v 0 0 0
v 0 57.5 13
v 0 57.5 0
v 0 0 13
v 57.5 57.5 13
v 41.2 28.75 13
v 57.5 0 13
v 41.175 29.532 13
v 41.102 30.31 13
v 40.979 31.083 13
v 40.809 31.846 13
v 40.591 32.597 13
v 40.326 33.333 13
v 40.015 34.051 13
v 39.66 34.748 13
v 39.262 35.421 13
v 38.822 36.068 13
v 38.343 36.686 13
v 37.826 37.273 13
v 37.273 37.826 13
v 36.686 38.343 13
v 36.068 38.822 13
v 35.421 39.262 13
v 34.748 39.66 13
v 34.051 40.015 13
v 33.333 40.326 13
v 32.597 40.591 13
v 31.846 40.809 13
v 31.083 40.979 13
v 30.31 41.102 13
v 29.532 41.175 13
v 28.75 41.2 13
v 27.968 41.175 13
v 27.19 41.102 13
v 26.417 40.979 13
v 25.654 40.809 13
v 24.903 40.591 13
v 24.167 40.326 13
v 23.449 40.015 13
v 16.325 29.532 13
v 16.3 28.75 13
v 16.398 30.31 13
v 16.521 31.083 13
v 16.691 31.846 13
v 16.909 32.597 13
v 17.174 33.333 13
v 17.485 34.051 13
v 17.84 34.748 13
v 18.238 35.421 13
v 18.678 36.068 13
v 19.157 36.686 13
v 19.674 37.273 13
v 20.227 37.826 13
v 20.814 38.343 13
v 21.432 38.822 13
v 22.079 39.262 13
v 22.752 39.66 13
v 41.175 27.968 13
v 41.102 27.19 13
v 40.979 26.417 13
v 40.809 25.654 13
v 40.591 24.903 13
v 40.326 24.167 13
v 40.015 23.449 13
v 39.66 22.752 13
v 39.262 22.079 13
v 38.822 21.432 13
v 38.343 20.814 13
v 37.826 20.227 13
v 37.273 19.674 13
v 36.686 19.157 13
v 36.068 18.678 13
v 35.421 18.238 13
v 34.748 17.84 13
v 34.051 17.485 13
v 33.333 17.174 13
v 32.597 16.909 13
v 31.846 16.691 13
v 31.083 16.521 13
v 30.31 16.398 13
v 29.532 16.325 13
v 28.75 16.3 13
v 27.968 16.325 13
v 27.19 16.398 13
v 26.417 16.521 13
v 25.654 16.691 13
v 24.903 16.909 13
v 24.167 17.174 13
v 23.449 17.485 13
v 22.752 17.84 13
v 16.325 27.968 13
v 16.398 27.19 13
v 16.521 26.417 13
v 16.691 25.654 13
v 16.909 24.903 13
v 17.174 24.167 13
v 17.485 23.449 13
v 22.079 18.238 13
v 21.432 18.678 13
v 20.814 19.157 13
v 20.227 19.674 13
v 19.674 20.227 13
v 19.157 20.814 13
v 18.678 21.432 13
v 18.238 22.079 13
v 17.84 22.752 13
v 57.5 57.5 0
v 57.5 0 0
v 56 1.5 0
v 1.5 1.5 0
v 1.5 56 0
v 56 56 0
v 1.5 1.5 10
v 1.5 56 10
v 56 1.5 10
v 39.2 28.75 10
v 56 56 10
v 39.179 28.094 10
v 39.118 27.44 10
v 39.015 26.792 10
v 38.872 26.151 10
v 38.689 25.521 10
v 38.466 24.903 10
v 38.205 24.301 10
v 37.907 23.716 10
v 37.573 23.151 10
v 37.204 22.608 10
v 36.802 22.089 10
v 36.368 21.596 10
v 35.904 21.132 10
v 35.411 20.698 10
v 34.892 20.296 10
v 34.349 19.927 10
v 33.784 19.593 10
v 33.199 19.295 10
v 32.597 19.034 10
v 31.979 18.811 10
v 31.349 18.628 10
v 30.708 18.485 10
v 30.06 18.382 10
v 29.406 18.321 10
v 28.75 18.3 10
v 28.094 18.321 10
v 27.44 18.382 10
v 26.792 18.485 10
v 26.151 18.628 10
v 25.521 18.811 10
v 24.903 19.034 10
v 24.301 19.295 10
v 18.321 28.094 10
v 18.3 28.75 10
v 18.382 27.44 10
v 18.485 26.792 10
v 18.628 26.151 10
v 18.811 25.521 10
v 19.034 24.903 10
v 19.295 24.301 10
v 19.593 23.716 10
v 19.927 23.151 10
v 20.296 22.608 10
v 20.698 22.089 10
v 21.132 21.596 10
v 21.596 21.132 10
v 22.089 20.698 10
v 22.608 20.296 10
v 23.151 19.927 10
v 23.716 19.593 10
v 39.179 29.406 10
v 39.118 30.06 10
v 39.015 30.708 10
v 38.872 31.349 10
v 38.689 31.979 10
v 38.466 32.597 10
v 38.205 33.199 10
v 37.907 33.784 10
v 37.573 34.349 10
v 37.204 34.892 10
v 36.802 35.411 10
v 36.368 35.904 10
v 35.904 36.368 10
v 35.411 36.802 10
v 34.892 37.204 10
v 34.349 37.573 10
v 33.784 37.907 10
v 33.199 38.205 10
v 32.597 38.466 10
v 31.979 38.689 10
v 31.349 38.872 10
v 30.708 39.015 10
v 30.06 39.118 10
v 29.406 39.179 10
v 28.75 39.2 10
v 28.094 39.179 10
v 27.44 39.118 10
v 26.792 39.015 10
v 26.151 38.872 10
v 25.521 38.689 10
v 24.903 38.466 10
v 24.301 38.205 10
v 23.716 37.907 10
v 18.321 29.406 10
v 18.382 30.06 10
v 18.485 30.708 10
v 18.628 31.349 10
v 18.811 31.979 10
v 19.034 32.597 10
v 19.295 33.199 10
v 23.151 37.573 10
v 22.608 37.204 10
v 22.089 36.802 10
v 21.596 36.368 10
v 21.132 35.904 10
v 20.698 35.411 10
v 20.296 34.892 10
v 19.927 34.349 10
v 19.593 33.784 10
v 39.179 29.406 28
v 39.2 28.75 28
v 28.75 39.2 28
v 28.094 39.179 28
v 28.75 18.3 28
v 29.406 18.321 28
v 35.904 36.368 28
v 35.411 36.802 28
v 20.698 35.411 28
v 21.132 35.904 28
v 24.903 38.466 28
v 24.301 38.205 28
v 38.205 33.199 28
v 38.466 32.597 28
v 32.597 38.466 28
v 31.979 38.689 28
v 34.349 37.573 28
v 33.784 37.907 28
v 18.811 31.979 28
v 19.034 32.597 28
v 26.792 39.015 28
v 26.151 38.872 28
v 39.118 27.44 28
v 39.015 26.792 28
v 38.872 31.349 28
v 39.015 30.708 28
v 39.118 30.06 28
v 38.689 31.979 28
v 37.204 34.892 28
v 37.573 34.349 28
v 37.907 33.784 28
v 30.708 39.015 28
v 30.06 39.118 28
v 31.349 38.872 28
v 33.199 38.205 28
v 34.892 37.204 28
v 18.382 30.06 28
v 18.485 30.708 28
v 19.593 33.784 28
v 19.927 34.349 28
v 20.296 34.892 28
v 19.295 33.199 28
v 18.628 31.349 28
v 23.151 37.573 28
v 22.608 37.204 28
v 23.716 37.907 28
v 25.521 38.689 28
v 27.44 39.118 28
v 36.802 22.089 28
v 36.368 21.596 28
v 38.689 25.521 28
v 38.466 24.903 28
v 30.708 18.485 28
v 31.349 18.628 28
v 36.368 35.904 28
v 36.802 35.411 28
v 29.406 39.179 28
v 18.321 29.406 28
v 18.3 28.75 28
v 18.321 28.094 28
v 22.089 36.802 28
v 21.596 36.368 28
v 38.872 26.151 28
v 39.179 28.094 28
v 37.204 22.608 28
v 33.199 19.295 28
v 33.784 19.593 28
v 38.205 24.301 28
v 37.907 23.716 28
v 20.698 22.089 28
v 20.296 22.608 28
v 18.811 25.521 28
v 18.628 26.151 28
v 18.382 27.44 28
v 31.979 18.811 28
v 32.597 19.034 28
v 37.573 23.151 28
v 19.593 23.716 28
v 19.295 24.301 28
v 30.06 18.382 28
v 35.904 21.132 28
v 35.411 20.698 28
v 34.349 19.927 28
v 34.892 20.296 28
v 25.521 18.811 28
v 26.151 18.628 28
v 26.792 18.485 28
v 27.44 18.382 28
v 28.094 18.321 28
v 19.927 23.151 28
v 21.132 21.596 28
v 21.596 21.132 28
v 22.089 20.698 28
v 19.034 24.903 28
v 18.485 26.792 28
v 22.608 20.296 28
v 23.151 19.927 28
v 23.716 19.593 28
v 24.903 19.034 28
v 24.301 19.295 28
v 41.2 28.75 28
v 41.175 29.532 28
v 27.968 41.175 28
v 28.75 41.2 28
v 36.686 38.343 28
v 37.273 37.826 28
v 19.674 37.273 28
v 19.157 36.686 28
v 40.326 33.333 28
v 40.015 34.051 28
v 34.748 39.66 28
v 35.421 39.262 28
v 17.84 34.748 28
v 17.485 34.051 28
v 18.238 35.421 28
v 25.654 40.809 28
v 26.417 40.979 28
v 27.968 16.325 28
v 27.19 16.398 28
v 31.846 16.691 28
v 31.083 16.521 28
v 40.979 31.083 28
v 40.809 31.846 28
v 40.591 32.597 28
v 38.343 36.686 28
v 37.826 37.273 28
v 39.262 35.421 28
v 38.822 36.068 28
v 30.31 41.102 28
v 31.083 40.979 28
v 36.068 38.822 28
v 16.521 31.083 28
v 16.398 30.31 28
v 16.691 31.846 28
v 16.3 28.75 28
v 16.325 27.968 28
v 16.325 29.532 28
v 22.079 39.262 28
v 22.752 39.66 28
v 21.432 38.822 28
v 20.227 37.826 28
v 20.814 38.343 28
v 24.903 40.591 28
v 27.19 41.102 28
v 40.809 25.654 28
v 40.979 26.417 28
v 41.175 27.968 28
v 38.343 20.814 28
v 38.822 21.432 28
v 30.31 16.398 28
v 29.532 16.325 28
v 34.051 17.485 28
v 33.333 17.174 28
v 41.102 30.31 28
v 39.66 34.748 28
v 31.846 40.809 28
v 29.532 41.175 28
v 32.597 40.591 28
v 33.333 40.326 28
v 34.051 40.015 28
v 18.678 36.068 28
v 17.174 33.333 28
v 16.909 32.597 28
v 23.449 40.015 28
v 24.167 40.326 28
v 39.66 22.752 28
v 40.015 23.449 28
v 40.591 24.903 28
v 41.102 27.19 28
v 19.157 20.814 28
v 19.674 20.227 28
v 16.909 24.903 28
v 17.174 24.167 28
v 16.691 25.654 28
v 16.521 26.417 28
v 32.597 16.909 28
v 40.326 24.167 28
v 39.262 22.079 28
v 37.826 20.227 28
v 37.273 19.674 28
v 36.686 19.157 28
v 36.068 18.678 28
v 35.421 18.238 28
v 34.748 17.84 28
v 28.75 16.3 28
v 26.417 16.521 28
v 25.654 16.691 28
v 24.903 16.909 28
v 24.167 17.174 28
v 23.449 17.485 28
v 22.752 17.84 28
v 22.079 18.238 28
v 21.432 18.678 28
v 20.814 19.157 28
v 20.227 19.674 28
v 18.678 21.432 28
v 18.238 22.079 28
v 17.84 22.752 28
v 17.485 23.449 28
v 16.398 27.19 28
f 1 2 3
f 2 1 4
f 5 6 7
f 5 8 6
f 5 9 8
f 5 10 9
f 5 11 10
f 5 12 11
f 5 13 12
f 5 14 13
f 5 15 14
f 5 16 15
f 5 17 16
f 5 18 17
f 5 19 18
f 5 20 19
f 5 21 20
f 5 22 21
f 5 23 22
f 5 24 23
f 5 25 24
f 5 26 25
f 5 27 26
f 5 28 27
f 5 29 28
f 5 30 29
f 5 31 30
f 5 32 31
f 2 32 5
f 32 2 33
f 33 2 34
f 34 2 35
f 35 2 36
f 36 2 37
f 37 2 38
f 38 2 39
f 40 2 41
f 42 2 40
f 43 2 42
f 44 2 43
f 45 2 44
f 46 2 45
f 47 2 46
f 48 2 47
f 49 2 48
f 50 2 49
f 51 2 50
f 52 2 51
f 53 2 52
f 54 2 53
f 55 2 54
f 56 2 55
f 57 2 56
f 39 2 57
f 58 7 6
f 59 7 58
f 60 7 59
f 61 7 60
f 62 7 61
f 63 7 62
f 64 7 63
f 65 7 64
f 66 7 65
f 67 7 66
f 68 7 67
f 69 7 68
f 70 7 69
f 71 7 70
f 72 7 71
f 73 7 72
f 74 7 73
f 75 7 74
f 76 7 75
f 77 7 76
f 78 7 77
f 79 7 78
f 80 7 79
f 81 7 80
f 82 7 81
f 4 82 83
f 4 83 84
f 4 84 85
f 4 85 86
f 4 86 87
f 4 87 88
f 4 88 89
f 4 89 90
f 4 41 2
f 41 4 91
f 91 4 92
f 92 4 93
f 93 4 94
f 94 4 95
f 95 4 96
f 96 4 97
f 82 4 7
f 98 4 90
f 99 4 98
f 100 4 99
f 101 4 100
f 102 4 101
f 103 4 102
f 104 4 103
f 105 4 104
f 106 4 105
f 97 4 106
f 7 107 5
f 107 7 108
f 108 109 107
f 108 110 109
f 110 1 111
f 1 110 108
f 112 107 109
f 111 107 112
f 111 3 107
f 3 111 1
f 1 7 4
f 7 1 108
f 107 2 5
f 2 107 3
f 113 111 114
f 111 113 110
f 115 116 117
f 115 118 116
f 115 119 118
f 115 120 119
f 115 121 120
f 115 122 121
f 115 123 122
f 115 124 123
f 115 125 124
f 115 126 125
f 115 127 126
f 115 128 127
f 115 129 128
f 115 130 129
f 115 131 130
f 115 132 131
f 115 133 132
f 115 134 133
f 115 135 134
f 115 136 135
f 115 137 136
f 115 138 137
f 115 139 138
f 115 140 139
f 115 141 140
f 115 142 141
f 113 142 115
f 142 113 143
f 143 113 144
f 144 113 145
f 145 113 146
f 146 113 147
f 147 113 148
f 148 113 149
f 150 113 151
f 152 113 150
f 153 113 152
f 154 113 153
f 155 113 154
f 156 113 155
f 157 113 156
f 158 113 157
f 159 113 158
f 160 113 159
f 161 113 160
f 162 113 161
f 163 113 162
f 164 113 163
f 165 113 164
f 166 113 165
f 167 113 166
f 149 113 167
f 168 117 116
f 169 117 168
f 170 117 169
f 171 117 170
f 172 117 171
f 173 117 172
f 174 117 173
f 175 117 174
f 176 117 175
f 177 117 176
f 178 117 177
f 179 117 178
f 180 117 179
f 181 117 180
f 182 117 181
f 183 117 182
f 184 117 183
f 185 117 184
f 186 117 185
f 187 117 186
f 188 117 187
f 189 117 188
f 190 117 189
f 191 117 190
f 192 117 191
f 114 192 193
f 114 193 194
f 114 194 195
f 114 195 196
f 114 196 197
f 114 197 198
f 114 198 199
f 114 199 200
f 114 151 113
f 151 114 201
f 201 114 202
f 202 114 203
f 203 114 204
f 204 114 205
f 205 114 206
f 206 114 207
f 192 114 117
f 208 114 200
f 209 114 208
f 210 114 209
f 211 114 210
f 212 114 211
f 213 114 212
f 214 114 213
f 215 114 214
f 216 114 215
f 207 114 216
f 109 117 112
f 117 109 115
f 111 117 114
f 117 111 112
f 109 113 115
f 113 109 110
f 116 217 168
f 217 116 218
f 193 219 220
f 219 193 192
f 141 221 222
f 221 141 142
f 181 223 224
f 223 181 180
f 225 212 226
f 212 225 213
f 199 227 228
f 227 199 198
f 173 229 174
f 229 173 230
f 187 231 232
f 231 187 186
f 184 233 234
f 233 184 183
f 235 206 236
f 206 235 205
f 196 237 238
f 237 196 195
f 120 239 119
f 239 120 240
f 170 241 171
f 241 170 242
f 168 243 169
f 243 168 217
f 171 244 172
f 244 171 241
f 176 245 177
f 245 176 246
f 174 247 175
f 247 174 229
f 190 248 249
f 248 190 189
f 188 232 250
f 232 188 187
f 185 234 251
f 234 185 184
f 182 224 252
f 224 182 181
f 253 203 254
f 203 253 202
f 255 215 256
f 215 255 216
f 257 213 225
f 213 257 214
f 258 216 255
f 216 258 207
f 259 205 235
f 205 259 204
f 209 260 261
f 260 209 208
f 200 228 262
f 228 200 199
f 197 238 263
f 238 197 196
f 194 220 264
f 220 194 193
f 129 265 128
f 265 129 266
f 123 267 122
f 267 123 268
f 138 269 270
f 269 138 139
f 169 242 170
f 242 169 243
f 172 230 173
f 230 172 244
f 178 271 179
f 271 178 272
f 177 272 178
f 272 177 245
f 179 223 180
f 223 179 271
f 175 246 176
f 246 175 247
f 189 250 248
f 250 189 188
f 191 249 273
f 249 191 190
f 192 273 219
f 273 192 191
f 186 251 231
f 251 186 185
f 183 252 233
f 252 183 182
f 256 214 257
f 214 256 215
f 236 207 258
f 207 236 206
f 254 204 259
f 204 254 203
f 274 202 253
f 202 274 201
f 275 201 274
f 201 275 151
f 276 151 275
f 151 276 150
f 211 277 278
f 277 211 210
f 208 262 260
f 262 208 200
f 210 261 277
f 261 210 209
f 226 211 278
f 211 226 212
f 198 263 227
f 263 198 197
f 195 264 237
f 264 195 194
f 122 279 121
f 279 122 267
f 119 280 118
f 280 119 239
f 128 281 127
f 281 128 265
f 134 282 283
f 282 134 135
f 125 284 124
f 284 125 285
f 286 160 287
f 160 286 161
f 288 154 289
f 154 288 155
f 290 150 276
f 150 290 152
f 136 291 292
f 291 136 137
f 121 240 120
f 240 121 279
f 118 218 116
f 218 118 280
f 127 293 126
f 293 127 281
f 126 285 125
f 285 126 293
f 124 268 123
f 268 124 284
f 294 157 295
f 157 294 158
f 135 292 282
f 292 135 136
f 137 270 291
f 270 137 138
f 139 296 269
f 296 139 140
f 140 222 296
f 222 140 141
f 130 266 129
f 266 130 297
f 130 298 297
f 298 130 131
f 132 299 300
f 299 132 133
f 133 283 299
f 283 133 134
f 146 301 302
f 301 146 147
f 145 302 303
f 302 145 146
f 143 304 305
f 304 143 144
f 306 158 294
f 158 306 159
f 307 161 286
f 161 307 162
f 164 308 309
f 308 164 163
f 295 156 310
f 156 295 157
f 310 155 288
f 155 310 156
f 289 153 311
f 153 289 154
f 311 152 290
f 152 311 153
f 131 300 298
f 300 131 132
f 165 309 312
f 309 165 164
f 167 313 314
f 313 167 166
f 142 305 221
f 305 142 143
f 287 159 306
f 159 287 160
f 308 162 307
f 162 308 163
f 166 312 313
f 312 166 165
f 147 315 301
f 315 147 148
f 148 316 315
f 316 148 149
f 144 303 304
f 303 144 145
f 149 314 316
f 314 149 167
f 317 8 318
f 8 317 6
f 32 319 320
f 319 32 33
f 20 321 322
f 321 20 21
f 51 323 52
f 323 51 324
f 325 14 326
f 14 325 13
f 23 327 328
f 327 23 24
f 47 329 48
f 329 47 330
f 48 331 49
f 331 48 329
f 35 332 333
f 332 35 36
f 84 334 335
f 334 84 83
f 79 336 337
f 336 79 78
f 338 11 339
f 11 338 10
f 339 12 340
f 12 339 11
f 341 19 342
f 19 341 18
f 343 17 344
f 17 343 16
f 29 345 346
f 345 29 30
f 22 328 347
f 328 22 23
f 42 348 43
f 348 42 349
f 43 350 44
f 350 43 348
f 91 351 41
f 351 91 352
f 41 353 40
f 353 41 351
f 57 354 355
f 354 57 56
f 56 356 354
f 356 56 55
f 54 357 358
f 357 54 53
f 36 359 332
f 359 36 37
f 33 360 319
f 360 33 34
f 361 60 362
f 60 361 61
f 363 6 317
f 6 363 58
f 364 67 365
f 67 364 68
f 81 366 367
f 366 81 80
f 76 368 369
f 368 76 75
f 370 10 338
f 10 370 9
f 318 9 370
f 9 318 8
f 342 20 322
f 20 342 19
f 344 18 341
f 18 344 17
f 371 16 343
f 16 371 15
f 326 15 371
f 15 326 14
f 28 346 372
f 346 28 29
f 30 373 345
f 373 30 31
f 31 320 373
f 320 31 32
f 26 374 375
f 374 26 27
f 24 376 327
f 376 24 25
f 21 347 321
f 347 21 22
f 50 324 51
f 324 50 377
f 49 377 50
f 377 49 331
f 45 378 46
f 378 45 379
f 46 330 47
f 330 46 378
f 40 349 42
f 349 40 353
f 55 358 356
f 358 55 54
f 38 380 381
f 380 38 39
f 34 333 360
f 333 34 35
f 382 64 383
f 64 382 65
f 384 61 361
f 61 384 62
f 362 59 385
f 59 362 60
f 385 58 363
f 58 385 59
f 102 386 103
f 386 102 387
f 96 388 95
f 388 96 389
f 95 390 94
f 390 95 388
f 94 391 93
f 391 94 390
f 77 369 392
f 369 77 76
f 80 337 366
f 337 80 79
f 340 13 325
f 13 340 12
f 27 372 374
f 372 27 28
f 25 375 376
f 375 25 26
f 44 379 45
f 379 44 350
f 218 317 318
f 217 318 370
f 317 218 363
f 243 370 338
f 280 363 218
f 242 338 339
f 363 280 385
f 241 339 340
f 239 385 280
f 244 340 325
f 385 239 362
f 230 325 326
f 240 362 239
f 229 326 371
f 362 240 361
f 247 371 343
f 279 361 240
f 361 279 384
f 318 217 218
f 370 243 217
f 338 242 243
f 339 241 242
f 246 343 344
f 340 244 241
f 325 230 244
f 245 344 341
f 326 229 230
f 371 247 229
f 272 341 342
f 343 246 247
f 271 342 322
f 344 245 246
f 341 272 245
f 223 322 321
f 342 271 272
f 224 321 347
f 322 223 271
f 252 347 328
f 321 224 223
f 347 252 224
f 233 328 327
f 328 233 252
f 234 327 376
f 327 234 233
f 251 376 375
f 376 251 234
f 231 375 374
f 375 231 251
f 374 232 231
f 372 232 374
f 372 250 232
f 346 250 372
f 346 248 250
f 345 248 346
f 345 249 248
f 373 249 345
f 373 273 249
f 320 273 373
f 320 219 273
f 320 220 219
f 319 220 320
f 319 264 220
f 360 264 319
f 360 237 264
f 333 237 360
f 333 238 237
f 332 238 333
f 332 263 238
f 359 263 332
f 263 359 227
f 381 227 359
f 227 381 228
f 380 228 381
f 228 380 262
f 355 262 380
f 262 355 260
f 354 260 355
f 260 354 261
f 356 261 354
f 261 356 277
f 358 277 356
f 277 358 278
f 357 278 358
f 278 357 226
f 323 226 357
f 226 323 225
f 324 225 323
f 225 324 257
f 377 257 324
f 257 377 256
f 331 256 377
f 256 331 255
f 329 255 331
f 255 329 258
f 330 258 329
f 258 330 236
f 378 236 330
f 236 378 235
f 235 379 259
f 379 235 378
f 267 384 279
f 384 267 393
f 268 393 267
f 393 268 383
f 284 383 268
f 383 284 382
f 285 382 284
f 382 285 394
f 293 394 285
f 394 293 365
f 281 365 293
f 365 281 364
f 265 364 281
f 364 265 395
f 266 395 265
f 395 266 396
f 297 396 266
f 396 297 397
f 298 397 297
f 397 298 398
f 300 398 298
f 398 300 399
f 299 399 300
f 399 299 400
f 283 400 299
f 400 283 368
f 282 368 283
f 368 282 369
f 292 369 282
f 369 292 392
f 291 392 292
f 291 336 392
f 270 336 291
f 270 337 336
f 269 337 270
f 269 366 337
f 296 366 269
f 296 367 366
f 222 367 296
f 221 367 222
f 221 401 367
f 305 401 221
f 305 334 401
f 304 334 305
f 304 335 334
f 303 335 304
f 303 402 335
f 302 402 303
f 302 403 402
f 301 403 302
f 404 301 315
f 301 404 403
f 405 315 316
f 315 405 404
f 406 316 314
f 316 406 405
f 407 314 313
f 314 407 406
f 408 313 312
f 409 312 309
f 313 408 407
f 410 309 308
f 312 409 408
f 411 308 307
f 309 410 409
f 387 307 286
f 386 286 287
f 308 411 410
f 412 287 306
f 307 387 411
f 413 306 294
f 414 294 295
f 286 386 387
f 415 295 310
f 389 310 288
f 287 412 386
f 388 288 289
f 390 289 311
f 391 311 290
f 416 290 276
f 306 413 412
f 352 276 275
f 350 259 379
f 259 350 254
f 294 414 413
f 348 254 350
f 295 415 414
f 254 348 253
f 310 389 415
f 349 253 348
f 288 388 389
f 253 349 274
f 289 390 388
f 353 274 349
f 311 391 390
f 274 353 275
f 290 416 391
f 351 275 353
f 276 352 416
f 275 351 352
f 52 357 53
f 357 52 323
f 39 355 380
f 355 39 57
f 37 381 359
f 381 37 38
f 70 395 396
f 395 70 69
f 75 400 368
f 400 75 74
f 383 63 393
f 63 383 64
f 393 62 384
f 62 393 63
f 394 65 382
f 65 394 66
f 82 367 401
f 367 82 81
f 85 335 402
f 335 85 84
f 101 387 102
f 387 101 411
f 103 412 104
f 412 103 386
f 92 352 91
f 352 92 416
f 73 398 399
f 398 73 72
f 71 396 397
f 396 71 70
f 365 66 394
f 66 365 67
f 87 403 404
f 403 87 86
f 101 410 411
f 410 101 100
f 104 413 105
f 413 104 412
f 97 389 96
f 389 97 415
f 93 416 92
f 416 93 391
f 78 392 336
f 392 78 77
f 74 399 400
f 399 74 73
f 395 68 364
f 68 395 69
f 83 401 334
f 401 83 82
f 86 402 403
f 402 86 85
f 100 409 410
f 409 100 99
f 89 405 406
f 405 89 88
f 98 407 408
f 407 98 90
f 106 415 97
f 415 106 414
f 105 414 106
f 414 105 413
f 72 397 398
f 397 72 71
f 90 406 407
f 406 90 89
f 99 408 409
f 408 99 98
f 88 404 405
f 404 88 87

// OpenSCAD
/*//suporte do cubo
difference(){
translate([-2,-2,0])cube([54,54,120]);
#translate([8,-2,70])cube([34,54,40]);
#translate([8,-2,10])cube([34,54,50]);
#translate([-2,8,10])cube([54,34,50]);
#translate([-2,8,70])cube([54,34,40]);
}
 difference(){translate([-25,-25,0])cube([100,100,15]);
#translate([-12.5,-12.5,0])cylinder(h=15, r=3.3, $fn=100);
#translate([62.5,62.5,0])cylinder(h=15, r=3.3);
#translate([62.5,-12.5,0])cylinder(h=15, r=3.3);
#translate([-12.5,62.5,0])cylinder(h=15, r=3.3);
 }
 
difference(){
translate([25,25,120])cylinder(h=15, r1=12.5,r2=12.5);
#translate([25,25,120])cylinder(h=15, r1=10.5,r2=10.5);
#translate([8,-2,70])cube([34,54,40]);
#translate([8,-2,10])cube([34,54,50]);
#translate([-2,8,10])cube([54,34,50]);
#translate([-2,8,70])cube([54,34,40]);
}

//base
rotate(a=[0,0,0])translate([-2,8,20])difference(){rotate(a=[90,30,0])translate([0,0,0])cylinder(10,10,10,$fn=3);
    #translate([0,-10,-5])cube([10,10,15]);
}
rotate(a=[0,0,90])translate([-2,2,20])difference(){rotate(a=[90,30,0])translate([0,0,0])cylinder(10,10,10,$fn=3);
    #translate([0,-10,-5])cube([10,10,15]);
}
translate([52,52,20])rotate(a=[0,0,270])difference(){rotate(a=[90,30,0])translate([0,0,0])cylinder(10,10,10,$fn=3);
    #translate([0,-10,-5])cube([10,10,15]);
}
translate([8,52,20])rotate(a=[0,0,270])difference(){rotate(a=[90,30,0])translate([0,0,0])cylinder(10,10,10,$fn=3);
    #translate([0,-10,-5])cube([10,10,15]);
}
rotate(a=[0,0,0])translate([-2,52,20])difference(){rotate(a=[90,30,0])translate([0,0,0])cylinder(10,10,10,$fn=3);
    #translate([0,-10,-5])cube([10,10,15]);
}
rotate(a=[0,0,90])translate([-2,-42,20])difference(){rotate(a=[90,30,0])translate([0,0,0])cylinder(10,10,10,$fn=3);
    #translate([0,-10,-5])cube([10,10,15]);
}
translate([52,-2,20])rotate(a=[0,0,180])difference(){rotate(a=[90,30,0])translate([0,0,0])cylinder(10,10,10,$fn=3);
    #translate([0,-10,-5])cube([10,10,15]);
}
translate([52,42,20])rotate(a=[0,0,180])difference(){rotate(a=[90,30,0])translate([0,0,0])cylinder(10,10,10,$fn=3);
    #translate([0,-10,-5])cube([10,10,15]);
}
*/

difference(){
translate([0,0,0])cube([57.5,57.5,13]);
#translate([1.5,1.5,0])cube([54.5,54.5,10]);
#translate([28.75,28.75,10])cylinder(h=3, r1=10.45,r2=10.45, $fn=100);
}


difference(){
translate([28.75,28.75,13])cylinder(h=15, r1=12.45,r2=12.45, $fn=100);
#translate([28.75,28.75,13])cylinder(h=15, r1=10.45,r2=10.45, $fn=100);
}

/*
translate([0,0,0])cube([57.5,57.5,13]);
translate([28.75,28.75,13])cylinder(h=15, r1=12.5,r2=12.5);
*/

/*vish meoo*/
